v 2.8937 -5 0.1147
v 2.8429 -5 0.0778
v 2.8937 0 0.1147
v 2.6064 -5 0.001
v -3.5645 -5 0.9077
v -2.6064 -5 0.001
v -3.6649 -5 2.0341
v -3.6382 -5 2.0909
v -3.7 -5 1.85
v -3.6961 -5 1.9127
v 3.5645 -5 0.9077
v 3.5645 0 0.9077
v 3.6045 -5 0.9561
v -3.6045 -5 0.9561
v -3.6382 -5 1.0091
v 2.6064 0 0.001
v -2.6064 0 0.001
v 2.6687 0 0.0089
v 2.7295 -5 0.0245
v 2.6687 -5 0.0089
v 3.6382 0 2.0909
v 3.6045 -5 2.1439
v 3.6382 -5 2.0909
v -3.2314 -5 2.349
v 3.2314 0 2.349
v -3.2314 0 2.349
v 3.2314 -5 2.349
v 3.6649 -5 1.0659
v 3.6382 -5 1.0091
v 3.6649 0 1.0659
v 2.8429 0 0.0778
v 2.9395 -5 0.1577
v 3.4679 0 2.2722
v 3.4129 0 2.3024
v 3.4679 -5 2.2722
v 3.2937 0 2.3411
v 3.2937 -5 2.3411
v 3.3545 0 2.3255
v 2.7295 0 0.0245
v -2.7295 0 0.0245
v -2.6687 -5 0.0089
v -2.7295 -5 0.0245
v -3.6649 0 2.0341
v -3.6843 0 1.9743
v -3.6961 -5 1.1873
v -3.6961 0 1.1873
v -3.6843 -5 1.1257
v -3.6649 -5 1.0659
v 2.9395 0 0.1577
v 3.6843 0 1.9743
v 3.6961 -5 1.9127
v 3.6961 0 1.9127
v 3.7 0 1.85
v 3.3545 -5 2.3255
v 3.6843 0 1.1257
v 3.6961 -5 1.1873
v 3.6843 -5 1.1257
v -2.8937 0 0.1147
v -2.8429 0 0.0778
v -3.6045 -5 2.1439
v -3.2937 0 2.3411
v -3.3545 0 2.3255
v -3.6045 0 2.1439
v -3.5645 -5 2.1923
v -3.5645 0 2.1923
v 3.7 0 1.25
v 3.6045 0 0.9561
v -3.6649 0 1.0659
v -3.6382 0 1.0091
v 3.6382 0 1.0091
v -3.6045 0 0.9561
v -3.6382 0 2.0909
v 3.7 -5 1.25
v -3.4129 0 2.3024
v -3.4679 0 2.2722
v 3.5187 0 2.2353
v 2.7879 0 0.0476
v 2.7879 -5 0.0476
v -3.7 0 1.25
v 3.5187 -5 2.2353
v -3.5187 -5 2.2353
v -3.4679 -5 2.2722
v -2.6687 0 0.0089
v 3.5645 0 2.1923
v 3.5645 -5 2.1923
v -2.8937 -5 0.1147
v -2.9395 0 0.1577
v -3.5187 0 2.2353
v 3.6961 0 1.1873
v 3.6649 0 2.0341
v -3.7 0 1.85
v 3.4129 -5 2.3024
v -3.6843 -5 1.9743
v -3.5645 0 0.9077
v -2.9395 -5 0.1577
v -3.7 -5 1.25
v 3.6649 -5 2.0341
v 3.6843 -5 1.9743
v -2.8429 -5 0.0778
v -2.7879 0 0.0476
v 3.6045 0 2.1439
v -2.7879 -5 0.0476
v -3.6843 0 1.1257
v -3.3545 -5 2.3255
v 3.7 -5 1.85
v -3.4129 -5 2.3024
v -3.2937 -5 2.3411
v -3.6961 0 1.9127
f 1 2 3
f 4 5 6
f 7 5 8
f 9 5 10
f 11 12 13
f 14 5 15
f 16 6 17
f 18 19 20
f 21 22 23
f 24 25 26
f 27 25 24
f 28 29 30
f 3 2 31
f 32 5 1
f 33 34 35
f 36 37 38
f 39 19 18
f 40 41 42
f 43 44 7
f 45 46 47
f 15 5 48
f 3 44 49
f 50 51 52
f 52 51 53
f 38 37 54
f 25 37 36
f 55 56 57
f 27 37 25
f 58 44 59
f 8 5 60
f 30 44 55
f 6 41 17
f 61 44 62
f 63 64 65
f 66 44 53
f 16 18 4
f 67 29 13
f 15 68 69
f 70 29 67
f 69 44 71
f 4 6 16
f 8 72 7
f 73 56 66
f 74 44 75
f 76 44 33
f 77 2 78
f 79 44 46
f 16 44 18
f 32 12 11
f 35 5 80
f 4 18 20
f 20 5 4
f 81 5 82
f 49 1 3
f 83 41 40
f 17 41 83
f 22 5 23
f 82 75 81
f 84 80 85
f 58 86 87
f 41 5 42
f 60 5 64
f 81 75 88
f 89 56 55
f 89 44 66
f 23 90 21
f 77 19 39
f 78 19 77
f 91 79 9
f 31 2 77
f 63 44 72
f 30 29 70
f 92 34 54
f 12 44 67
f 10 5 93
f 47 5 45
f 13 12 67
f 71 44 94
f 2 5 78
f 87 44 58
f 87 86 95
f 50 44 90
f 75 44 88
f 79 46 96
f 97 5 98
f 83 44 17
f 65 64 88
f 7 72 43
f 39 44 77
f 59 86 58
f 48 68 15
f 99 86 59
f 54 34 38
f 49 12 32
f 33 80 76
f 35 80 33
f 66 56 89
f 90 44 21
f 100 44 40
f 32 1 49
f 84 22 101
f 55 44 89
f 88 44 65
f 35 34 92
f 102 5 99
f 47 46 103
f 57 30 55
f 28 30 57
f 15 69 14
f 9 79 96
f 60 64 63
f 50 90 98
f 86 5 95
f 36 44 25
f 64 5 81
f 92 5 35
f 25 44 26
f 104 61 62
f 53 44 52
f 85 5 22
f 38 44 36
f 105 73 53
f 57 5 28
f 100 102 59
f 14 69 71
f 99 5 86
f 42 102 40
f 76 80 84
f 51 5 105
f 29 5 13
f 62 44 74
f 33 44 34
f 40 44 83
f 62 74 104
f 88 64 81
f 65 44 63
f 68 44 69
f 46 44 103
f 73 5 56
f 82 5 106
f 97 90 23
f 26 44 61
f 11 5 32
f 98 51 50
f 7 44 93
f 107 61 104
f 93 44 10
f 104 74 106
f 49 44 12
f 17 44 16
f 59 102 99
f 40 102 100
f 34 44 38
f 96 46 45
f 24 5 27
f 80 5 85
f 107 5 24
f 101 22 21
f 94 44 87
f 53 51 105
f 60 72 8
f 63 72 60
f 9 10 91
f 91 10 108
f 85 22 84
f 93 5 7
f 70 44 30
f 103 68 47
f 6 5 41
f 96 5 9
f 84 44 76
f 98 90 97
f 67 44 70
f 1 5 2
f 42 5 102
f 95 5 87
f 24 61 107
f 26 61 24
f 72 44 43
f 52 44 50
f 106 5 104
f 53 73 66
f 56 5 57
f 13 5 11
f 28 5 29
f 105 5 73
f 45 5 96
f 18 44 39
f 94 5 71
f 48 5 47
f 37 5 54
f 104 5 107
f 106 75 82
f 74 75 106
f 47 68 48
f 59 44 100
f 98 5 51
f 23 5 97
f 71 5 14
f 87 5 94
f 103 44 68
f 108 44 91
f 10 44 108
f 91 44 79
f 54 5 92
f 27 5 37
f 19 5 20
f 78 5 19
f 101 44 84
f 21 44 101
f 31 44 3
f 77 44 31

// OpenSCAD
//https://www.thingiverse.com/thing:3539959

 $fn=50;
fudge=0.1;


//translate([-30,0,0]) XH(2);
//translate([-15,0,0]) 
mUSB();


module mUSB(){
  //usb.org CabConn20.pdf
  
  M= 6.9;   //Rece inside width
  N= 1.85;  //Rece inside Height -left/right
  
  C= 3.5;   //Plastic width
  X= 0.6;   //plastic height
  U= 0.22;  //plastic from shell
  P= 0.48;  //Conntacst from plastic
  
  Q= 5.4;   //shell inside bevel width
  R= 1.1;   //shell inside bevel height -left/right
  
  S= 4.75;  //Latch separation 
  T= 0.6;   //Latch width -left/right
  V= 1.05;  //Latch recess
  W= 2.55;  //Latch recess
  Y= 0.56;  //Latch Height
  Z= 60;    //Latch Angle
  
  H= 2.6;   //Pin1-5 separation
  I= 1.3;   //Pin2-4 separation
  conWdth= 0.37; //# contact width
  
  
  conThck= 0.1; //contact thickness
  
  //JAE DX4R005J91
  r=0.25; //corner radius
  t=0.25; //sheet thickness
  
  //flaps
  flpLngth=0.6;
  flpDimTop=[6.2,flpLngth,t];
  flpDimBot=[5.2,flpLngth,t];
  flpDimSide=[0.75,flpLngth,t];
  
  flpAng=40;
  
  
  THT_OZ=-(5-1.8);
  legDim=[0.9,0.65-r/2,t];


hull()shell();


 module shell(){
    translate([0,0,N-R/2+t])
      rotate([90,0,0]){
          difference(){ //2D
            shape(radius=r+t,length=5);
            translate([0,0,-fudge/2]) shape(radius=r,length=5+fudge);
          }
    }
  }

  //the usb shape
  module shape(radius=r,length=5){
    hull(){
      for (ix=[-1,1],iy=[-1,1])
        translate([ix*(M/2-r),iy*(R/2-r),0]) cylinder(r=radius,h=length);
      for (ix=[-1,1])
        translate([ix*(Q/2-r/2),-N+(R/2+r),0]) cylinder(r=radius,h=length);
    }
  }
  }
